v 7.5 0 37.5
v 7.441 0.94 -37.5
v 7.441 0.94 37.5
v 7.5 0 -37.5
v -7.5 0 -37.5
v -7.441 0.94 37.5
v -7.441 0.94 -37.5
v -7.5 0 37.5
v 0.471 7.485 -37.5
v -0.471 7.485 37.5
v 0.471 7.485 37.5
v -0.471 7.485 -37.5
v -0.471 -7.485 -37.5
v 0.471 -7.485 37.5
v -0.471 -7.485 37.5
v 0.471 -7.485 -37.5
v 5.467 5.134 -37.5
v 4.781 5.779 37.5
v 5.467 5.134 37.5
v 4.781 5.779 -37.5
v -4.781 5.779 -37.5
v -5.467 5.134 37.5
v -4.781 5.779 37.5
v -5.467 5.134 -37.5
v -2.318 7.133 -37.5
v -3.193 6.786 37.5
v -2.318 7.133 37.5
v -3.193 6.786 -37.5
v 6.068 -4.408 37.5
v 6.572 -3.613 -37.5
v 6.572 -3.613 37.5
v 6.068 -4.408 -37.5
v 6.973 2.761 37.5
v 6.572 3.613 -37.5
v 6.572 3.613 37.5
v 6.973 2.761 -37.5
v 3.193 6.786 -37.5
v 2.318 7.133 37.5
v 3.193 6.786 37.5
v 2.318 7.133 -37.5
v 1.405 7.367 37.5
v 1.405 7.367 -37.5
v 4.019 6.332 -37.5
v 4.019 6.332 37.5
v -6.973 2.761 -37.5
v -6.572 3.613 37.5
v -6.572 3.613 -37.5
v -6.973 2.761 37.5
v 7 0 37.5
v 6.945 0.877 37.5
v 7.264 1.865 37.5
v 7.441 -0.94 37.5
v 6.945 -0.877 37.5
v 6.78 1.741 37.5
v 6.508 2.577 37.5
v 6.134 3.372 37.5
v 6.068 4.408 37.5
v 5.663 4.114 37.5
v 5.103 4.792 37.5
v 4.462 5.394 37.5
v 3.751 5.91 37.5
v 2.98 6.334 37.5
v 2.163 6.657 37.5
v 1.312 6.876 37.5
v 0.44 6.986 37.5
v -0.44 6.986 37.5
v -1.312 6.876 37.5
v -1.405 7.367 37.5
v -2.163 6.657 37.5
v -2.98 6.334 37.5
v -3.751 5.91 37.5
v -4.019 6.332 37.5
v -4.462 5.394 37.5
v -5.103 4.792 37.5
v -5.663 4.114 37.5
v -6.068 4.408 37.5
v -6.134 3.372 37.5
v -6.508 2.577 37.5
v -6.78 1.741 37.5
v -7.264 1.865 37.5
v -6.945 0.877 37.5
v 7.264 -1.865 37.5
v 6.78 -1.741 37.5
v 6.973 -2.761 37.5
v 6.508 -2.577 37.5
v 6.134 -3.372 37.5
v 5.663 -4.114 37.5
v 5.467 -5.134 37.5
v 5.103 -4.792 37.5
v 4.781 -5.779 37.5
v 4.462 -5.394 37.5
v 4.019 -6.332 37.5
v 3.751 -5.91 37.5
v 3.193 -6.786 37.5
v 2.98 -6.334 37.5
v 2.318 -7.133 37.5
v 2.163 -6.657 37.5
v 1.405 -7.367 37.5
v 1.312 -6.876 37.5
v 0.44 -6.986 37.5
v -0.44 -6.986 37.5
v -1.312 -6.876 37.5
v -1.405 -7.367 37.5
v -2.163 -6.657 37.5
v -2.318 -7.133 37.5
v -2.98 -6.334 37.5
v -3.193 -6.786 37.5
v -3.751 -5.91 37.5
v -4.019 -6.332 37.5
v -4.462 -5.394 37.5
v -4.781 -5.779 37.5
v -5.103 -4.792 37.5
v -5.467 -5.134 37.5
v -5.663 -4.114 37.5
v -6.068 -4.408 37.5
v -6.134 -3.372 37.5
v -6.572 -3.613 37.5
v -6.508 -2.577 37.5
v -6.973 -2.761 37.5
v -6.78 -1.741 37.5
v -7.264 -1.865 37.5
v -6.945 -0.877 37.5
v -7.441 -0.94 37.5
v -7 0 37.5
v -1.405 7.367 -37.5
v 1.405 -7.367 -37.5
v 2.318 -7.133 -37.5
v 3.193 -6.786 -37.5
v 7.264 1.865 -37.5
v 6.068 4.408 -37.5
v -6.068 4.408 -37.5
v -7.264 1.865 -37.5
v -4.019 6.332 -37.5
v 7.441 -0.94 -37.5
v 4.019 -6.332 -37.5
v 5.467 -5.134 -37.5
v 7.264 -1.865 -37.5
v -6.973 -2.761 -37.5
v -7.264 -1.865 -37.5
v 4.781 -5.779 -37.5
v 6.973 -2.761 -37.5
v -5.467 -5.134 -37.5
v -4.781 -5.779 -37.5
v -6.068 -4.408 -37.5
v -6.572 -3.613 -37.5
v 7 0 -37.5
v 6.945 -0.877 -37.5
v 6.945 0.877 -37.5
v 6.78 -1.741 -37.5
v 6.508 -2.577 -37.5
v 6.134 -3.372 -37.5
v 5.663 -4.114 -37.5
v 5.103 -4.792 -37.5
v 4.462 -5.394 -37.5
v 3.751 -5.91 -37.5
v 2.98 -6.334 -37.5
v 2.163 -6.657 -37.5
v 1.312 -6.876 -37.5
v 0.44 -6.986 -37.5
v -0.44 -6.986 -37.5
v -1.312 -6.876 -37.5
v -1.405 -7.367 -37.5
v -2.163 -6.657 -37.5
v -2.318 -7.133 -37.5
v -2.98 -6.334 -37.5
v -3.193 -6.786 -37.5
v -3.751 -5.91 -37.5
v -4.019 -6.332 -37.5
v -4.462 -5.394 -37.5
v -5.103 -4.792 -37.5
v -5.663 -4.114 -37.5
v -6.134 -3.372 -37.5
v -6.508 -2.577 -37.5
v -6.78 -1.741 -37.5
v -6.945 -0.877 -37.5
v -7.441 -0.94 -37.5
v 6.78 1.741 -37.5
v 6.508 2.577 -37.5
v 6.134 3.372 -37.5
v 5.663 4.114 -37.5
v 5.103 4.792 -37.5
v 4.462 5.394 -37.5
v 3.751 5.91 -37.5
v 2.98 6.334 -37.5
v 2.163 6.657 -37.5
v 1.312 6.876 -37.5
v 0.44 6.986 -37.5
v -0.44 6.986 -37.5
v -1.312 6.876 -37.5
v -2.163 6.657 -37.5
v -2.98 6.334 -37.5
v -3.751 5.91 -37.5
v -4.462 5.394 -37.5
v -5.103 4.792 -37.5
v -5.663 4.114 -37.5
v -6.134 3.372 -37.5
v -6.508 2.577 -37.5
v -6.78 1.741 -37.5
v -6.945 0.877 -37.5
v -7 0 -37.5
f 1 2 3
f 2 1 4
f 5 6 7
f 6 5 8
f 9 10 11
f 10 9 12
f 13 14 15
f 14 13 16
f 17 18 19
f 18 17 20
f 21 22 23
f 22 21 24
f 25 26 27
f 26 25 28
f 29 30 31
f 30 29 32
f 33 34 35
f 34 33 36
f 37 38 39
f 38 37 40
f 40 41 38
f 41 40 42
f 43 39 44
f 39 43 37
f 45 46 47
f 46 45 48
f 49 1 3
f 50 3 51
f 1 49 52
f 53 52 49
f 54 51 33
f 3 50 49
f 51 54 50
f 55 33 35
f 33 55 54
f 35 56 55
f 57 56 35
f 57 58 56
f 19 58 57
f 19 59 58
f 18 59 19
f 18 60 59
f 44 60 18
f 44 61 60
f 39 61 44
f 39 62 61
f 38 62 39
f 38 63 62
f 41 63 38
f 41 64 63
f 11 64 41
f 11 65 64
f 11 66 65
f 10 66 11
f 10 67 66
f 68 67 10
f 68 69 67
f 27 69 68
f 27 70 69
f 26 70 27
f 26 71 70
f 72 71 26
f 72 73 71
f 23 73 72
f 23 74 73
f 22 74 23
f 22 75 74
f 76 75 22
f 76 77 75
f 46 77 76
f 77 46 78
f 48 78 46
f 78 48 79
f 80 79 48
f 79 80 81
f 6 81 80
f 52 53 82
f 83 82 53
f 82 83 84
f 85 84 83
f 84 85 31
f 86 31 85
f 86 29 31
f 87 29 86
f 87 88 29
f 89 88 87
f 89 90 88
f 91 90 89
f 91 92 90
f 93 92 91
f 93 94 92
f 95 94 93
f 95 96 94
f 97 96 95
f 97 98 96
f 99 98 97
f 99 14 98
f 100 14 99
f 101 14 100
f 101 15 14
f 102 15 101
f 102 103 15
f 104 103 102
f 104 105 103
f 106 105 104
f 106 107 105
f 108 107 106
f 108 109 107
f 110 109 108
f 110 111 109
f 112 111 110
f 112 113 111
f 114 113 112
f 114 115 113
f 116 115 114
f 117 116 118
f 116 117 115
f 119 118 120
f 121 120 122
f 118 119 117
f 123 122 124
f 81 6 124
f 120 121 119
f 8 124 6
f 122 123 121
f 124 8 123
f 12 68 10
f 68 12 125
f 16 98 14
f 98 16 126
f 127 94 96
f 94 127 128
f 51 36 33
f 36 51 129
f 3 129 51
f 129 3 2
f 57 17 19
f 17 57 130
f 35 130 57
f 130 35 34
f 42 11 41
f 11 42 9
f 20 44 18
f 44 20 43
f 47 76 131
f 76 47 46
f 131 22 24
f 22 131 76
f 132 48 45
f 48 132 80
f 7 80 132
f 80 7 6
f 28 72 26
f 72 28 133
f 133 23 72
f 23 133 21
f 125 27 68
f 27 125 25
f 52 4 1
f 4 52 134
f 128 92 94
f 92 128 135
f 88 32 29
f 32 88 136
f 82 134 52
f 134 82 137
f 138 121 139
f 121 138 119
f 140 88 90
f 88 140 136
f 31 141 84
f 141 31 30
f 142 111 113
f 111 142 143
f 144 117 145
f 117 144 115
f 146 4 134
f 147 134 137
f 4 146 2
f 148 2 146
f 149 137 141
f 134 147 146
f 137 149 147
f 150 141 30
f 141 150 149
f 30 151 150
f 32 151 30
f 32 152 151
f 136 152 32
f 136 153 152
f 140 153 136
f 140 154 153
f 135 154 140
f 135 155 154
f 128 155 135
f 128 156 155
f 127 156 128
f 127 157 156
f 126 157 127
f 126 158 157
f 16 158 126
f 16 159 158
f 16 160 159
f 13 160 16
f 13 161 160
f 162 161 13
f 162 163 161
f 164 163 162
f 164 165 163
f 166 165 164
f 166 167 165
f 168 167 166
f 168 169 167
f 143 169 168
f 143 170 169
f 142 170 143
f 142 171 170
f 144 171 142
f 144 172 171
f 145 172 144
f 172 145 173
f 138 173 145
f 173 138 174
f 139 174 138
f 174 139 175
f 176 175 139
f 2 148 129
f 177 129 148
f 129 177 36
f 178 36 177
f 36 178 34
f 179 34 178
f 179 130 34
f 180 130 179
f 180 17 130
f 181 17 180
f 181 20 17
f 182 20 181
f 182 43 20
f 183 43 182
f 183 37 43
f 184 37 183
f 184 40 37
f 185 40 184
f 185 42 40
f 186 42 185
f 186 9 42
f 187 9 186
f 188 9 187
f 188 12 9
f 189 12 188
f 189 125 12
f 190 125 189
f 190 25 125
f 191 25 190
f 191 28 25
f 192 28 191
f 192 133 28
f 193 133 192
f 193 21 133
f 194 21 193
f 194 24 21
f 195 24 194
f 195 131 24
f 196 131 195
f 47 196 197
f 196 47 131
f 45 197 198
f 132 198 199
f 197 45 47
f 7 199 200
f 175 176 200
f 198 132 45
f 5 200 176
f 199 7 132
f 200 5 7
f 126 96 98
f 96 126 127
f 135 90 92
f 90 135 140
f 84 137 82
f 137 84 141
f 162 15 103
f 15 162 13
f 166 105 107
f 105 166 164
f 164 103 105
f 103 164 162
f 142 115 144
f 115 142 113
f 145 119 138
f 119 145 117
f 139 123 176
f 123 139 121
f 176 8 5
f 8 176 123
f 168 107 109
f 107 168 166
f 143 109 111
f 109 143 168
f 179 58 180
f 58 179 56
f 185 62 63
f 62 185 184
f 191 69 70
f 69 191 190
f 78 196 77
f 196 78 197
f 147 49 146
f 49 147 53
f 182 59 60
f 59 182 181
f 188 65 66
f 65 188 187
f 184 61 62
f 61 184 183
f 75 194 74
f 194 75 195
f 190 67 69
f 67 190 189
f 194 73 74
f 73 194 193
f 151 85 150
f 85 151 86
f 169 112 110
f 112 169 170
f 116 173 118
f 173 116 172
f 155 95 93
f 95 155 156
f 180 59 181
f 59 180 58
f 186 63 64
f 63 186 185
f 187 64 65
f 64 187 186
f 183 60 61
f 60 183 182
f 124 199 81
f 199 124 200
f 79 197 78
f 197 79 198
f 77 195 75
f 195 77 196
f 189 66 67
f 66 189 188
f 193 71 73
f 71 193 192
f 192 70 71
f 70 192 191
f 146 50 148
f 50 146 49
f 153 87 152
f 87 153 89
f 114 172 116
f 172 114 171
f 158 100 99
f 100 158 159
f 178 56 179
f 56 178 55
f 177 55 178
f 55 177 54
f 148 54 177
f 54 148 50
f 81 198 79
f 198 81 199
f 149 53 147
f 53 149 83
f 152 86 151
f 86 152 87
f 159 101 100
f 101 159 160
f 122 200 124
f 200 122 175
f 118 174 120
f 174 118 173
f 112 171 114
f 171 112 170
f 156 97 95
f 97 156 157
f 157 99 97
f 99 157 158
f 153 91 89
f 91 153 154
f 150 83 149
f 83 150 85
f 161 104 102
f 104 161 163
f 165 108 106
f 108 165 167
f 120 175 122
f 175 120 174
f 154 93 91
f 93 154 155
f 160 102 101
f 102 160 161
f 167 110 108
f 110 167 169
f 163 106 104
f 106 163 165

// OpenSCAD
$fn = 50;


difference() {
	union() {
		translate(v = [0, 0, -37.5000000000]) {
			cylinder(h = 75, r = 7.5000000000);
		}
	}
	union() {
		translate(v = [0, 0, -100.0000000000]) {
			cylinder(h = 200, r = 7);
		}
	}
}
